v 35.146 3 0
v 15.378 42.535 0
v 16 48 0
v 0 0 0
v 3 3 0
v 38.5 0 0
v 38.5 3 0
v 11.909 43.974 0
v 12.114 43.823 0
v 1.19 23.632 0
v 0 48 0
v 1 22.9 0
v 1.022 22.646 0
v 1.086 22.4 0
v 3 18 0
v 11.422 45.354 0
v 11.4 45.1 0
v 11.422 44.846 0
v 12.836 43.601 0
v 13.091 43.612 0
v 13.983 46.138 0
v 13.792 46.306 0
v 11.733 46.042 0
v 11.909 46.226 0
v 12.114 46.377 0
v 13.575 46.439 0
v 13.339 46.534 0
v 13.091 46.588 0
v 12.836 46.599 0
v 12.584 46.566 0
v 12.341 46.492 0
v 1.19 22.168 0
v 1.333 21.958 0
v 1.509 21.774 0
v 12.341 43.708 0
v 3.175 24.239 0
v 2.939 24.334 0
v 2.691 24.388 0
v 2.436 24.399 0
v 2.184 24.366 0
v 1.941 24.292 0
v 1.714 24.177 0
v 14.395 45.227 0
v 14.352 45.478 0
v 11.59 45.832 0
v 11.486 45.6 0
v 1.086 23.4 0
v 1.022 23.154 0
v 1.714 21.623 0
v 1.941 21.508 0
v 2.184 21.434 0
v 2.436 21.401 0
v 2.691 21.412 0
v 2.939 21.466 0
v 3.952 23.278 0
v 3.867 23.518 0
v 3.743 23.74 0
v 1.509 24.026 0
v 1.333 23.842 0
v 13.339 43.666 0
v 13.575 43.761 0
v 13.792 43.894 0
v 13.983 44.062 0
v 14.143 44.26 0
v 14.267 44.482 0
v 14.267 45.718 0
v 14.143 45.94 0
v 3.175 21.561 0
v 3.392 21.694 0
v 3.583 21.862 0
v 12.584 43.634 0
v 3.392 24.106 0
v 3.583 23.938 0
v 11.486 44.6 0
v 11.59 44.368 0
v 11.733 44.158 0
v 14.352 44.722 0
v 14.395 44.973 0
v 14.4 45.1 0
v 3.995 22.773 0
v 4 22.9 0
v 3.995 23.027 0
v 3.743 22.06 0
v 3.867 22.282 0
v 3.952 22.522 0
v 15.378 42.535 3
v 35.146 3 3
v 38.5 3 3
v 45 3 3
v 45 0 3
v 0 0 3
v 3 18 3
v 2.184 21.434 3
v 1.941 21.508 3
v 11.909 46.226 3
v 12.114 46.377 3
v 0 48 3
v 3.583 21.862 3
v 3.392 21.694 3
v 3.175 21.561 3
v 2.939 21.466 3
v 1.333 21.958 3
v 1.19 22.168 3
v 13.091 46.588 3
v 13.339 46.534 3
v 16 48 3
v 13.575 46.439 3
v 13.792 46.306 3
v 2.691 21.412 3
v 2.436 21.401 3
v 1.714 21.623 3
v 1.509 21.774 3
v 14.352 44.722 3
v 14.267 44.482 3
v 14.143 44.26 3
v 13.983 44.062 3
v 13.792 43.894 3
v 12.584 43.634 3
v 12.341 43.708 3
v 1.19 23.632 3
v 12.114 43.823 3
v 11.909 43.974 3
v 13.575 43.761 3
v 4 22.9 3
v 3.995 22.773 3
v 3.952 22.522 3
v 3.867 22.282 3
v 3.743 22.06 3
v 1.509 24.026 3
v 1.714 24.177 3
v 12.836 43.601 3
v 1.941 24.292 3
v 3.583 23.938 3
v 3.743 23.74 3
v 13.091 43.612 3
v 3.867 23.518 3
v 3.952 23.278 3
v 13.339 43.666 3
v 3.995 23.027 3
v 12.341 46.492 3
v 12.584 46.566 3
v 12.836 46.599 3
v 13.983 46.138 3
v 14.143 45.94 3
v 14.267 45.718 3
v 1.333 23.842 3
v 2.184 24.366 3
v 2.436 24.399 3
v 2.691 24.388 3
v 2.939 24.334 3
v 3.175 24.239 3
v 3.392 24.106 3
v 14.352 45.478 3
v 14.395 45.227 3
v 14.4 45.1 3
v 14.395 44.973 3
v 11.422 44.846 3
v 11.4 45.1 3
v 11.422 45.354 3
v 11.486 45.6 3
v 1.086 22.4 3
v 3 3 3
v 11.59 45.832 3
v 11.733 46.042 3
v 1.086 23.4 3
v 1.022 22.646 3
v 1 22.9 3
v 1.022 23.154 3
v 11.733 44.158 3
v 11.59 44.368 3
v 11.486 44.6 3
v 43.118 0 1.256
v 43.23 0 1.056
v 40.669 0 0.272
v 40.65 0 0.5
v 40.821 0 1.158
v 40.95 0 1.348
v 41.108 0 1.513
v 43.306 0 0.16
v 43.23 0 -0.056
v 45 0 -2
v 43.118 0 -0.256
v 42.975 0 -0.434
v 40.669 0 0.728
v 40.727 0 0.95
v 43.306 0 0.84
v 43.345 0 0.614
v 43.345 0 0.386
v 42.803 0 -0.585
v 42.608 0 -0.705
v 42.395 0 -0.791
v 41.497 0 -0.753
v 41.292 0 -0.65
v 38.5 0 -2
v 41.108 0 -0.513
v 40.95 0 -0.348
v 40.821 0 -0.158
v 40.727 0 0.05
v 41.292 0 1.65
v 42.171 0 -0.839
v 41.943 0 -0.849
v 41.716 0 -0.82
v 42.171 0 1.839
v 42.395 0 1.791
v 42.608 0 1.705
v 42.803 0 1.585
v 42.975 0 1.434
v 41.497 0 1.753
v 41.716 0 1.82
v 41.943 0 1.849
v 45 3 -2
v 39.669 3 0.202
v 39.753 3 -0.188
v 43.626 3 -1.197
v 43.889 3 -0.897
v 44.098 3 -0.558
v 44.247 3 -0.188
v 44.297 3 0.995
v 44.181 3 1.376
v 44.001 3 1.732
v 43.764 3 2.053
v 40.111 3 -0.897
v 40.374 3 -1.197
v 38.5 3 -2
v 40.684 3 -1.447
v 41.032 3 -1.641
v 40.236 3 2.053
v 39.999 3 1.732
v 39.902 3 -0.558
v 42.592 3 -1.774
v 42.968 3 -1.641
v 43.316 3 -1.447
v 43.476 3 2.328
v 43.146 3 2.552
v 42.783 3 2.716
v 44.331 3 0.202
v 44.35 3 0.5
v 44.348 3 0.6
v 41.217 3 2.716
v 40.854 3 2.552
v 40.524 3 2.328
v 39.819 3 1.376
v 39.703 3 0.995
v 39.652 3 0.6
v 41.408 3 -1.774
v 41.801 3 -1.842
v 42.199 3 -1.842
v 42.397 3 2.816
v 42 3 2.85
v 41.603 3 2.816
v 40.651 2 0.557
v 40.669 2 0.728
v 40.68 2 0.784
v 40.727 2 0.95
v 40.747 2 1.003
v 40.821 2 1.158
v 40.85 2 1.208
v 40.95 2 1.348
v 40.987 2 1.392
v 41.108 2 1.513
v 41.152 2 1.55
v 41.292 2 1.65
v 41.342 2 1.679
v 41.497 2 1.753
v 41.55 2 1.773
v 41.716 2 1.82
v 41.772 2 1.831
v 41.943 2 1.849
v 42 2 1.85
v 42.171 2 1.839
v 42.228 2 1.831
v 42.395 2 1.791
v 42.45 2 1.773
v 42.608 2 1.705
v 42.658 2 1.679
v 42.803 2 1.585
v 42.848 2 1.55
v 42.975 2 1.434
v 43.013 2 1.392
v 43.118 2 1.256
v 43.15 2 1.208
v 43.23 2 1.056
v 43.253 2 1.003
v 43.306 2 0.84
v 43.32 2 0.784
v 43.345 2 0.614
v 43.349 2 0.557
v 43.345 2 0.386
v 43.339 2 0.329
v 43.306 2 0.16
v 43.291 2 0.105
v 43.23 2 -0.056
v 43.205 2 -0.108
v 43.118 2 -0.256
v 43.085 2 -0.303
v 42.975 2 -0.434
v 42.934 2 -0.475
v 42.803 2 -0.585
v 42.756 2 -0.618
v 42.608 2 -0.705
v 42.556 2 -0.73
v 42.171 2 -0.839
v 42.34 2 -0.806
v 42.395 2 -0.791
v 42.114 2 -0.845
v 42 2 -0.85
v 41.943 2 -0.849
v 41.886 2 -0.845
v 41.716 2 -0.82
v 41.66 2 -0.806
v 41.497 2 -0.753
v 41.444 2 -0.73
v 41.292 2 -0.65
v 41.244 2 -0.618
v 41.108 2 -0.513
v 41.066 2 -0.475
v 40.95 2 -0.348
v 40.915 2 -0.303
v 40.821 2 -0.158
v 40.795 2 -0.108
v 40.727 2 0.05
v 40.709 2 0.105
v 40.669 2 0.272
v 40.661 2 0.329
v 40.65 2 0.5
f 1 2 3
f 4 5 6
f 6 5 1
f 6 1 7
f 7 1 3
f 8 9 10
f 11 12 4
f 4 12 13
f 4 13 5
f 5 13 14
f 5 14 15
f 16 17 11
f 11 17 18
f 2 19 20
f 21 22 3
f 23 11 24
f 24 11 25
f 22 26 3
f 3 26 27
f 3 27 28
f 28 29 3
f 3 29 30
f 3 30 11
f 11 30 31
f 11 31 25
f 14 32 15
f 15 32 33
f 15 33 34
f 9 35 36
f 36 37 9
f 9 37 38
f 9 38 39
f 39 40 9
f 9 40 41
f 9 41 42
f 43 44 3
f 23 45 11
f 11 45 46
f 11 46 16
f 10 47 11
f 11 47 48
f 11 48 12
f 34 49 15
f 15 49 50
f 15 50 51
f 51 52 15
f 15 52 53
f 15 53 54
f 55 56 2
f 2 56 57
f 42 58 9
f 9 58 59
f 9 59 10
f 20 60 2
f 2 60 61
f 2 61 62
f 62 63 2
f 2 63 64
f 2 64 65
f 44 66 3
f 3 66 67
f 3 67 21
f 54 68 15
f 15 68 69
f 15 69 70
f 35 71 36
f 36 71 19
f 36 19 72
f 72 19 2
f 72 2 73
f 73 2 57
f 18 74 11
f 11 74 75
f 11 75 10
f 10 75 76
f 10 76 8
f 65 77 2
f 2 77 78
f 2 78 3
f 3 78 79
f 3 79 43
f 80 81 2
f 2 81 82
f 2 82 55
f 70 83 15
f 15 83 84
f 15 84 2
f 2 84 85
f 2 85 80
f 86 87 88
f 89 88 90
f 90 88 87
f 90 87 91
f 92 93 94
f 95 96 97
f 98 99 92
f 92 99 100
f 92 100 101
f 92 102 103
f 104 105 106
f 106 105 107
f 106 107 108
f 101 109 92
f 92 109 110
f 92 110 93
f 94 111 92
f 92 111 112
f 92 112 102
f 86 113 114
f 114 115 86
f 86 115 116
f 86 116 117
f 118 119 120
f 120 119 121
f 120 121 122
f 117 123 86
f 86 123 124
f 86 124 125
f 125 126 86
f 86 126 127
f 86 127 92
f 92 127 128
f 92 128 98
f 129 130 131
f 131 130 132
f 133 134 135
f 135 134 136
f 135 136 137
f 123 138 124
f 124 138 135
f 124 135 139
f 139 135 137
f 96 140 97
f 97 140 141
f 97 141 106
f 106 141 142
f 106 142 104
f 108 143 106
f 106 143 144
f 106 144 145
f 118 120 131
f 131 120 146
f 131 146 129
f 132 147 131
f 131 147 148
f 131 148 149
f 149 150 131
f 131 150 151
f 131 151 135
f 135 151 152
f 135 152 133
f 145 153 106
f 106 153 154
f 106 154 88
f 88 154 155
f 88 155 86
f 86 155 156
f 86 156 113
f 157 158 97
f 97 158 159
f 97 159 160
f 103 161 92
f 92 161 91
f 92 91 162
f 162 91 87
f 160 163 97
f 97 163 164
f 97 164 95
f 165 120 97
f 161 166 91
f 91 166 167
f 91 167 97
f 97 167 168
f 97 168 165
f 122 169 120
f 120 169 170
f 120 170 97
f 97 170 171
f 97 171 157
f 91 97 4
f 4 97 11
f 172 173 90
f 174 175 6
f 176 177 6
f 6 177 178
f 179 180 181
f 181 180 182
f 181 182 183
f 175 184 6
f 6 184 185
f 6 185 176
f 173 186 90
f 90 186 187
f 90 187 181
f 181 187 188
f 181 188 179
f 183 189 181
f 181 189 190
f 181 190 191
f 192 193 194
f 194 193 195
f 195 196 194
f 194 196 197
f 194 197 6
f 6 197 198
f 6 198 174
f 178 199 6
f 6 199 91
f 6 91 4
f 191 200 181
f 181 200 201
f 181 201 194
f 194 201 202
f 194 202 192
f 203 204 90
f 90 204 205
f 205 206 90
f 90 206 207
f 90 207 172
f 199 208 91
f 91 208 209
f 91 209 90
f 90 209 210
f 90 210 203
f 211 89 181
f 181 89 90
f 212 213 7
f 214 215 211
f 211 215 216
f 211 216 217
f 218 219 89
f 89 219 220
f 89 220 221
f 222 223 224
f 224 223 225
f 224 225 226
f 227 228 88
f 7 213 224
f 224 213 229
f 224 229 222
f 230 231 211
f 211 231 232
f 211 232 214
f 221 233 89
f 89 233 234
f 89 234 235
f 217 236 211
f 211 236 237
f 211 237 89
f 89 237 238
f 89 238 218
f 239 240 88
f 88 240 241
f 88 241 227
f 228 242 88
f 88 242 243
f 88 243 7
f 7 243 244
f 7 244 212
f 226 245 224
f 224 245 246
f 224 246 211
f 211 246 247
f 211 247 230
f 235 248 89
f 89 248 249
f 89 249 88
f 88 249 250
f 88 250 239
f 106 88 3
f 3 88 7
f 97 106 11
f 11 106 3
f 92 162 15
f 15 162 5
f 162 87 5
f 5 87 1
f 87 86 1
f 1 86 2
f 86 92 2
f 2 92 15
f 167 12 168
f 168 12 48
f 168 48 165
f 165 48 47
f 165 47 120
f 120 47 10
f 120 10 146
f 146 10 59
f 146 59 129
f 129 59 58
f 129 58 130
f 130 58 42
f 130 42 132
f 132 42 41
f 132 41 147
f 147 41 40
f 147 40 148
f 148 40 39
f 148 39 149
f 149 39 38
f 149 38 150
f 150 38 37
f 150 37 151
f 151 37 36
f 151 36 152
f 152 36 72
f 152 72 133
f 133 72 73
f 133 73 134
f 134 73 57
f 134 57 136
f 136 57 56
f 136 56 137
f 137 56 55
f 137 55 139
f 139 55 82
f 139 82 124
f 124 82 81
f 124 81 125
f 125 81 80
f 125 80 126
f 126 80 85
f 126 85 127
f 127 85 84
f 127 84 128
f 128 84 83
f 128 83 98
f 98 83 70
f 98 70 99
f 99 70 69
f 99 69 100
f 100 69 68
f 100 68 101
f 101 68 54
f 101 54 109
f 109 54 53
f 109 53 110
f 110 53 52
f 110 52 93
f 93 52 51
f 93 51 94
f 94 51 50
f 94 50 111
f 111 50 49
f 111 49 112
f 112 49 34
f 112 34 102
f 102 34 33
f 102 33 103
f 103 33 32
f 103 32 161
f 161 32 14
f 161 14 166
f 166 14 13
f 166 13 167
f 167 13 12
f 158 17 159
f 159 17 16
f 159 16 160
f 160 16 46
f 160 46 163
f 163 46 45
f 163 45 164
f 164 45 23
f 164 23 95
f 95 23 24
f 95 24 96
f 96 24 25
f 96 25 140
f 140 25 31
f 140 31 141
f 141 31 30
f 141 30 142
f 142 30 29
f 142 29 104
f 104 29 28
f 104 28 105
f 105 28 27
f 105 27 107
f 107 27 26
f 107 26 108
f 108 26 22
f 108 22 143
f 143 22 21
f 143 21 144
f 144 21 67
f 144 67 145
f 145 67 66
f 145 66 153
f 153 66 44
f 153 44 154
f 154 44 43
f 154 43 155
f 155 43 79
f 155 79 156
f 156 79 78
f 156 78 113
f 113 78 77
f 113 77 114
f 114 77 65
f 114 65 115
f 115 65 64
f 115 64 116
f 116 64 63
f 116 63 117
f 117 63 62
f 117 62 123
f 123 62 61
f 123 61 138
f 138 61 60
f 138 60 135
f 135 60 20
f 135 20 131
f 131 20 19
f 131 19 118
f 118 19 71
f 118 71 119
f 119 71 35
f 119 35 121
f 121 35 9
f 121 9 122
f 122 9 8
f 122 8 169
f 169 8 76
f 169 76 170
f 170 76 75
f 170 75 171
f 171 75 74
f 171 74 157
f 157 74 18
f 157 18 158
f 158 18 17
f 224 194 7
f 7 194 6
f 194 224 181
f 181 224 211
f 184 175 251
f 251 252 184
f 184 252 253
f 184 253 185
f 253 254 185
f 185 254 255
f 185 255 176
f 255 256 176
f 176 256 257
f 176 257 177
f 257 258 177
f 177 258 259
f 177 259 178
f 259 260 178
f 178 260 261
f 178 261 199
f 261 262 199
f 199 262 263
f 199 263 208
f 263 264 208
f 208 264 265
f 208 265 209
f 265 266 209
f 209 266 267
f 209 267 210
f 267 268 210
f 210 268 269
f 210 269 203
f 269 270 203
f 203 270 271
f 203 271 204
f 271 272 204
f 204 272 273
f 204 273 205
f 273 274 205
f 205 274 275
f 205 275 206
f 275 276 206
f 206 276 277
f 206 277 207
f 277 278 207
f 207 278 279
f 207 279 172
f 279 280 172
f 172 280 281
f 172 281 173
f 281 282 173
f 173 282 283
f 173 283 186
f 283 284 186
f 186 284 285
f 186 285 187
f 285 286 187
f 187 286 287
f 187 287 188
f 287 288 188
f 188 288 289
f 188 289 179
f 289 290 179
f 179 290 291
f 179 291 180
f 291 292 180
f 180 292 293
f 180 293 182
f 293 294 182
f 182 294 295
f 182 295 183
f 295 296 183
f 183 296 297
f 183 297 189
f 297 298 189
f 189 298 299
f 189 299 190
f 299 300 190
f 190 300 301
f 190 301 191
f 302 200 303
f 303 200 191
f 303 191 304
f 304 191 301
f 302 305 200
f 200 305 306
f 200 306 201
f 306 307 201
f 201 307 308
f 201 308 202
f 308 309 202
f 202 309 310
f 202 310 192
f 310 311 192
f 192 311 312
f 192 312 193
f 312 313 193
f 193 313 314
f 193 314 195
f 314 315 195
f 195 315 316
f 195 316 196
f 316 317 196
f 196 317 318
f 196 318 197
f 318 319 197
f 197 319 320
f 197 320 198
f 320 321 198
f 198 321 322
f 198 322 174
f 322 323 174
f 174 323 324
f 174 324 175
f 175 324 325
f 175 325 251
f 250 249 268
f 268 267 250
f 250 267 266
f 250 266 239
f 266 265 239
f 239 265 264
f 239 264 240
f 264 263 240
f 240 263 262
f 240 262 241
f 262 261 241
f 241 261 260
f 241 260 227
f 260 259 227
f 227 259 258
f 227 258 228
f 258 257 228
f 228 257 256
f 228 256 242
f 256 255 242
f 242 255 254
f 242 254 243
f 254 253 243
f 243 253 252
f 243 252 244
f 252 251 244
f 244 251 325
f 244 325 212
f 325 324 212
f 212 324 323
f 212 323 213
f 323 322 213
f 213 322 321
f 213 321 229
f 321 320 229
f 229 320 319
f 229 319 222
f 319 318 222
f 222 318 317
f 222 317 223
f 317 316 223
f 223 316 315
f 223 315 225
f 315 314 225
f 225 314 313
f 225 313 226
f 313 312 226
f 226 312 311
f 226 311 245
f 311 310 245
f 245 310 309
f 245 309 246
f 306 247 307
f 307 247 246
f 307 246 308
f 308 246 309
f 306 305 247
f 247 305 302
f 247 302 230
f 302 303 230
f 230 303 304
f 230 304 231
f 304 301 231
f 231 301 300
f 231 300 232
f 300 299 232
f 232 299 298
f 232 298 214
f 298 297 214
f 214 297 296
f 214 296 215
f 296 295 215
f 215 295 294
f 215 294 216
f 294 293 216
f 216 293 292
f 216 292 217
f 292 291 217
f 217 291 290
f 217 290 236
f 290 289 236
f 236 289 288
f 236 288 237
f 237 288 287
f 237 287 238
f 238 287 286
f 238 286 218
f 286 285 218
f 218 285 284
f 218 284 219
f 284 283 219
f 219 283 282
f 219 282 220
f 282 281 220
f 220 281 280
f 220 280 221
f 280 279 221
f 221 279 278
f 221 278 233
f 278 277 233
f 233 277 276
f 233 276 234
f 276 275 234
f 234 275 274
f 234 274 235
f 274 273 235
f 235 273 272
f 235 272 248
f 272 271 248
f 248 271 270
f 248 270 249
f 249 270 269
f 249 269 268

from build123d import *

# Parameters (mm, degrees)
SKICA1_R                 = 1.5
P_IDAT_VYSUNUT_M1_DEPTH  = 3
SKICA3_W                 = 6.5
SKICA3_H                 = 3
P_IDAT_VYSUNUT_M2_DEPTH  = 2
SKICA4_R                 = 1.35
ODEBRAT_VYSUNUT_M1_DEPTH = 3
ZKOSEN_1_SIZE            = 1


with BuildPart() as part:
    # Skica1 → Přidat vysunutím1 (new body)
    with BuildSketch(Plane.XY):
        Polygon((0, 0), (40, 0), (45, 0), (45, 3), (38.5, 3), (16, 48), (0, 48), align=None)
        with Locations((2.5, 22.9)):
            Circle(SKICA1_R, mode=Mode.SUBTRACT)
        with Locations((12.9, 45.1)):
            Circle(SKICA1_R, mode=Mode.SUBTRACT)
        Polygon((3, 3), (35.145898034, 3), (15.37827124, 42.535253588), (3, 18), align=None, mode=Mode.SUBTRACT)
    extrude(amount=P_IDAT_VYSUNUT_M1_DEPTH)

    # Skica3 → Přidat vysunutím2 (add)
    with BuildSketch(Plane(origin=(0, 0, 0), x_dir=(-1, 0, 0), z_dir=(0, 0, -1))):
        with Locations((-41.75, 1.5)):
            Rectangle(SKICA3_W, SKICA3_H)
    extrude(amount=P_IDAT_VYSUNUT_M2_DEPTH)

    # Skica4 → Odebrat vysunutím1 (cut)
    with BuildSketch(Plane(origin=(0, 3, 0), x_dir=(1, 0, 0), z_dir=(0, 1, 0))):
        with Locations((42, -0.5)):
            Circle(SKICA4_R)
    extrude(amount=-ODEBRAT_VYSUNUT_M1_DEPTH, mode=Mode.SUBTRACT)

    # Zkosení1
    zkosen_1_edges = [part.edges().sort_by_distance(p)[0] for p in [
        (40.65, 3, 0.5),
    ]]
    chamfer(zkosen_1_edges, length=ZKOSEN_1_SIZE)


solid = part.part
